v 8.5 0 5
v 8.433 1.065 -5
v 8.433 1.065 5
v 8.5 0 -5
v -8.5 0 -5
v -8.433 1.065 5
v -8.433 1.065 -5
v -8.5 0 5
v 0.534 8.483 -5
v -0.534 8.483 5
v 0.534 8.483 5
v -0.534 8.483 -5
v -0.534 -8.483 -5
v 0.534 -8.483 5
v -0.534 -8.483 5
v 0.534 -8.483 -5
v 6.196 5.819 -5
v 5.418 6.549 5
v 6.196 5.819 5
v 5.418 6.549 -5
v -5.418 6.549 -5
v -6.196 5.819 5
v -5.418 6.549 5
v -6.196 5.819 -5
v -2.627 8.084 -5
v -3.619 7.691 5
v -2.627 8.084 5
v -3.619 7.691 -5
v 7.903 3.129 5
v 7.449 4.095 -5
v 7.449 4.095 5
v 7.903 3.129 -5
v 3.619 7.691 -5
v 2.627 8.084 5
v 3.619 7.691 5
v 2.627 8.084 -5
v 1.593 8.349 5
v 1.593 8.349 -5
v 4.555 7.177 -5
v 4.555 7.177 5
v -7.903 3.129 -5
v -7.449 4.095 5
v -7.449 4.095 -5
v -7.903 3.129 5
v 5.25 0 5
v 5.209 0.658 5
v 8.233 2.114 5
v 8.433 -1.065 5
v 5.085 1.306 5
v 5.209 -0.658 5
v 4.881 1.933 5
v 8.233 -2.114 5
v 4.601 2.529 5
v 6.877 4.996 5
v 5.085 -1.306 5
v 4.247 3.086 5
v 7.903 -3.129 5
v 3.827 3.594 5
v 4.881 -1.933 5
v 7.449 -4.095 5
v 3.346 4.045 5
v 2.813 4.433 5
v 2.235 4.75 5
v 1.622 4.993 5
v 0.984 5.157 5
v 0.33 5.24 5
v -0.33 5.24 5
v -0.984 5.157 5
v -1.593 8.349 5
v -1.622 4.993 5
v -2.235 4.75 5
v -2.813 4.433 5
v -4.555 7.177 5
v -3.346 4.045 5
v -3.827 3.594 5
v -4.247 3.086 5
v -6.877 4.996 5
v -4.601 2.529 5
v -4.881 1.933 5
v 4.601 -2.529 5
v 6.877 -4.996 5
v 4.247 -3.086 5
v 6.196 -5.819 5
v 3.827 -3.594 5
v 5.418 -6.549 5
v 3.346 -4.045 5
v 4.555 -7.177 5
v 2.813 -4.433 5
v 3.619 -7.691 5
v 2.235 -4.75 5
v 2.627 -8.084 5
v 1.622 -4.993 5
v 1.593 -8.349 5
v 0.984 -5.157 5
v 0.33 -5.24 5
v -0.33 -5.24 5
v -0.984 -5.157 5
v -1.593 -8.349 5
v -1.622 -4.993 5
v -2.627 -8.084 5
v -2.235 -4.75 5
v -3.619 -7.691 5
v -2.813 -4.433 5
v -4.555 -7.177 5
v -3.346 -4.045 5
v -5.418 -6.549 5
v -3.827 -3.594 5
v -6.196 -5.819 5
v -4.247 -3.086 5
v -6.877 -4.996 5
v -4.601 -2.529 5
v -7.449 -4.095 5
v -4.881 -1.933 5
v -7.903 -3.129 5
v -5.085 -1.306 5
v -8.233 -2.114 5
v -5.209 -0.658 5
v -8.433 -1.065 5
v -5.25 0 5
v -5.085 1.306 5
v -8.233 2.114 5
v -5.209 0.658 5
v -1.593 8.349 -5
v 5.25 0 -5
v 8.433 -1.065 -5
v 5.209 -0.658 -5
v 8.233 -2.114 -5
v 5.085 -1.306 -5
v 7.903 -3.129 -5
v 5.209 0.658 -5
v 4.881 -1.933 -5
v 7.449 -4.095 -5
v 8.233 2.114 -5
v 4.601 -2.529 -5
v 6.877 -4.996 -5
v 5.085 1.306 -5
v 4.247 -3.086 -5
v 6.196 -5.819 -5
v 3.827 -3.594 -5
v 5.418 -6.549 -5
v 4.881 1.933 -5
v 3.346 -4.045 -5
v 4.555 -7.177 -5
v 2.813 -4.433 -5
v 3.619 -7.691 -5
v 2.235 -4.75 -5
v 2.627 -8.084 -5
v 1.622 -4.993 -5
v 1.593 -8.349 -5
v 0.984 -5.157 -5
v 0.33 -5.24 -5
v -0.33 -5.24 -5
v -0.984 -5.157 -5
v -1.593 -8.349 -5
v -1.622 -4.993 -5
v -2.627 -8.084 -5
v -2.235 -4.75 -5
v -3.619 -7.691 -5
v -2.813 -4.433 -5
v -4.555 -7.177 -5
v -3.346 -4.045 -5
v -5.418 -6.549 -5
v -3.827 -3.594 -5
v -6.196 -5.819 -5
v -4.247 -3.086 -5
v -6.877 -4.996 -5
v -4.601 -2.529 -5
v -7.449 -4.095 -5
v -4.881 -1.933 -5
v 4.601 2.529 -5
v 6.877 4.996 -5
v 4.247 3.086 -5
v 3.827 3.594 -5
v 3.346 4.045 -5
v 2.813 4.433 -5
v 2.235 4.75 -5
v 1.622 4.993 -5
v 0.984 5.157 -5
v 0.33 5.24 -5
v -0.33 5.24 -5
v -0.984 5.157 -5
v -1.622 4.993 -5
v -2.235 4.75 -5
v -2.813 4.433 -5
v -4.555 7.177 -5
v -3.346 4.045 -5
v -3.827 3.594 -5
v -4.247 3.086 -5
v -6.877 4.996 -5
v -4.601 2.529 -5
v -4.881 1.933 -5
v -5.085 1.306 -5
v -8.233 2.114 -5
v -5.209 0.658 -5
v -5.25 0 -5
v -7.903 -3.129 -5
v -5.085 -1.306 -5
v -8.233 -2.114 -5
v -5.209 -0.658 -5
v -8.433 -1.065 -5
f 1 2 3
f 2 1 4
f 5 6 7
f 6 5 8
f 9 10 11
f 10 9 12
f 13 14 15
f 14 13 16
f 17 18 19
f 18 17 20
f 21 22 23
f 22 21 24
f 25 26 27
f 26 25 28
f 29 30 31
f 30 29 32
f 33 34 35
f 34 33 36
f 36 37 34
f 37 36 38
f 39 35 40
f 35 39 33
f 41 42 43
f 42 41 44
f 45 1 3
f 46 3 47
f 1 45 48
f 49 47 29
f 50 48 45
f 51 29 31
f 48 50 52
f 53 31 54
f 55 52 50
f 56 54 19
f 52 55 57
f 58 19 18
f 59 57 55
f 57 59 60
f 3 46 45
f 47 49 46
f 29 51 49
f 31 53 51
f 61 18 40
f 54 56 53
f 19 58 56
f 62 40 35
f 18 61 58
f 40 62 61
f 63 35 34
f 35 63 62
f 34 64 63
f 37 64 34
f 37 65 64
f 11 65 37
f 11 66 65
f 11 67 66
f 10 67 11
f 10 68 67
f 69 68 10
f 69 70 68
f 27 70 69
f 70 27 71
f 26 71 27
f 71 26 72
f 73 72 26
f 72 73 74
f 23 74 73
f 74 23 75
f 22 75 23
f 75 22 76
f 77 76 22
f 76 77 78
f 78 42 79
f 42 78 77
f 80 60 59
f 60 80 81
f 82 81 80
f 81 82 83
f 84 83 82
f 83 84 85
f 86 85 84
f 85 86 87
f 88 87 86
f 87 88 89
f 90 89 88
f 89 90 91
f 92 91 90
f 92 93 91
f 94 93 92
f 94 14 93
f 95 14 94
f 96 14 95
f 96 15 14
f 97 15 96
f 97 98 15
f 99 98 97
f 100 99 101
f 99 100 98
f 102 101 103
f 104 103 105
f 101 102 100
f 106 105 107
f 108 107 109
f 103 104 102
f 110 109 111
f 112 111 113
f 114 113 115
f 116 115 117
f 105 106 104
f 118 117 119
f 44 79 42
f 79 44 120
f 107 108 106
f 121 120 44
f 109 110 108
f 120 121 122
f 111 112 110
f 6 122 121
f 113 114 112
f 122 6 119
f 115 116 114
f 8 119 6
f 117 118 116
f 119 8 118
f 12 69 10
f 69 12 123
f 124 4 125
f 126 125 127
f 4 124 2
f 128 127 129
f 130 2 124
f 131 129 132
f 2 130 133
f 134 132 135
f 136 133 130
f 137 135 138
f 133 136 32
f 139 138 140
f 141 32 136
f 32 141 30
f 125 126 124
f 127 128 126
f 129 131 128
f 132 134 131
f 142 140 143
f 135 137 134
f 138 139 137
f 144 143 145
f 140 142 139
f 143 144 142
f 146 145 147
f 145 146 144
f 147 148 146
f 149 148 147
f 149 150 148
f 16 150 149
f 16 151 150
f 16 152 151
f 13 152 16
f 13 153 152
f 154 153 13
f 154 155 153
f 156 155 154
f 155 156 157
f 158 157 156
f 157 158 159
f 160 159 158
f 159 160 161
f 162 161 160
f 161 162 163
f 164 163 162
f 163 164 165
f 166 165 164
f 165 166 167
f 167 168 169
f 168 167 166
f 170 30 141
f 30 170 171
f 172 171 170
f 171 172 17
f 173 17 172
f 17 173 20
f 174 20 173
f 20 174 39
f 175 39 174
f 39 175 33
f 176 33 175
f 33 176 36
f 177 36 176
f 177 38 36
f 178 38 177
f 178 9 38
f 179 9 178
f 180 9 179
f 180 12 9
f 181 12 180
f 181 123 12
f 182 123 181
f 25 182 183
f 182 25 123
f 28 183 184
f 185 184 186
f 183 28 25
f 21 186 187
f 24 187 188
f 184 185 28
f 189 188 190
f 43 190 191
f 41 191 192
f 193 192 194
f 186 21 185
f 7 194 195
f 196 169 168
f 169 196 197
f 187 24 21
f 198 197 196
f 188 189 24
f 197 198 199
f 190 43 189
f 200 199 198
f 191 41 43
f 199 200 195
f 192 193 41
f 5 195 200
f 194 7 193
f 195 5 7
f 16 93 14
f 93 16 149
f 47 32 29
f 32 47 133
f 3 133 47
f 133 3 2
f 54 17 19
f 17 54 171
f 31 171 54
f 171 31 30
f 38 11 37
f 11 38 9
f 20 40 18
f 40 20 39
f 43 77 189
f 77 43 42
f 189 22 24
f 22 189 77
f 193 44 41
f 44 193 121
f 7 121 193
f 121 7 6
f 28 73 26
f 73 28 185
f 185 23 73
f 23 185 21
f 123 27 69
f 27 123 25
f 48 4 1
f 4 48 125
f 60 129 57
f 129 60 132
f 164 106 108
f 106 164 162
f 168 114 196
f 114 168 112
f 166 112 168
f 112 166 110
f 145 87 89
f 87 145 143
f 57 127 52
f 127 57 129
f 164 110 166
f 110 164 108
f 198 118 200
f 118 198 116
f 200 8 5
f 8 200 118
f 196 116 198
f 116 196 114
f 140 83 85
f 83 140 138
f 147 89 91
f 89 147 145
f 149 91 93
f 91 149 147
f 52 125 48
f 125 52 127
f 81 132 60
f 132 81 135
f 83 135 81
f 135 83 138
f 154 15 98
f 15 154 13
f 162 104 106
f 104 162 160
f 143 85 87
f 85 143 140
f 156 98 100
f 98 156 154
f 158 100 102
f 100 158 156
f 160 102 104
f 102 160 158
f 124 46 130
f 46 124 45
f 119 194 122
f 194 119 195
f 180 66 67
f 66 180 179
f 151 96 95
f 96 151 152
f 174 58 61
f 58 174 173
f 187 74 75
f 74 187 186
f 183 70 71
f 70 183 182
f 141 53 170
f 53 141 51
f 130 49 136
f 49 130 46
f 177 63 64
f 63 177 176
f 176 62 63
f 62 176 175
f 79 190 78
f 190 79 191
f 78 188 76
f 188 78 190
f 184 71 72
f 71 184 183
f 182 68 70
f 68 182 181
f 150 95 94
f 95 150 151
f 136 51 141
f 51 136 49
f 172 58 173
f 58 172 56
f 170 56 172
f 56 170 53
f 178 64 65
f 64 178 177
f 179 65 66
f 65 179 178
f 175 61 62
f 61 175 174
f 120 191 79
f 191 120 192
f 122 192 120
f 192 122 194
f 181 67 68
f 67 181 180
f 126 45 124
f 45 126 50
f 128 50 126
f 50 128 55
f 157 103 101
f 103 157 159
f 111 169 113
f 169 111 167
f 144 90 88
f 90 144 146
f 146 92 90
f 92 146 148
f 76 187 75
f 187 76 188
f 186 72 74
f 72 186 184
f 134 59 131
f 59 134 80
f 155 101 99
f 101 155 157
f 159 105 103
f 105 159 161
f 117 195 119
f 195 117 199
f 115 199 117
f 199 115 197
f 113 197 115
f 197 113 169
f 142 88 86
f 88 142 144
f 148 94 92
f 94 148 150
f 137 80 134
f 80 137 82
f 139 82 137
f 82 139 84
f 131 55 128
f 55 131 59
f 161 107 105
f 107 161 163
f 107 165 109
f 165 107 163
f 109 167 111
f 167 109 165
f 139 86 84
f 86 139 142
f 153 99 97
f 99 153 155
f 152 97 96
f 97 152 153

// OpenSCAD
$fn = 50;


difference() {
	union() {
		translate(v = [0, 0, -5.0000000000]) {
			cylinder(h = 10, r = 8.5000000000);
		}
	}
	union() {
		translate(v = [0, 0, -100.0000000000]) {
			cylinder(h = 200, r = 5.2500000000);
		}
	}
}
